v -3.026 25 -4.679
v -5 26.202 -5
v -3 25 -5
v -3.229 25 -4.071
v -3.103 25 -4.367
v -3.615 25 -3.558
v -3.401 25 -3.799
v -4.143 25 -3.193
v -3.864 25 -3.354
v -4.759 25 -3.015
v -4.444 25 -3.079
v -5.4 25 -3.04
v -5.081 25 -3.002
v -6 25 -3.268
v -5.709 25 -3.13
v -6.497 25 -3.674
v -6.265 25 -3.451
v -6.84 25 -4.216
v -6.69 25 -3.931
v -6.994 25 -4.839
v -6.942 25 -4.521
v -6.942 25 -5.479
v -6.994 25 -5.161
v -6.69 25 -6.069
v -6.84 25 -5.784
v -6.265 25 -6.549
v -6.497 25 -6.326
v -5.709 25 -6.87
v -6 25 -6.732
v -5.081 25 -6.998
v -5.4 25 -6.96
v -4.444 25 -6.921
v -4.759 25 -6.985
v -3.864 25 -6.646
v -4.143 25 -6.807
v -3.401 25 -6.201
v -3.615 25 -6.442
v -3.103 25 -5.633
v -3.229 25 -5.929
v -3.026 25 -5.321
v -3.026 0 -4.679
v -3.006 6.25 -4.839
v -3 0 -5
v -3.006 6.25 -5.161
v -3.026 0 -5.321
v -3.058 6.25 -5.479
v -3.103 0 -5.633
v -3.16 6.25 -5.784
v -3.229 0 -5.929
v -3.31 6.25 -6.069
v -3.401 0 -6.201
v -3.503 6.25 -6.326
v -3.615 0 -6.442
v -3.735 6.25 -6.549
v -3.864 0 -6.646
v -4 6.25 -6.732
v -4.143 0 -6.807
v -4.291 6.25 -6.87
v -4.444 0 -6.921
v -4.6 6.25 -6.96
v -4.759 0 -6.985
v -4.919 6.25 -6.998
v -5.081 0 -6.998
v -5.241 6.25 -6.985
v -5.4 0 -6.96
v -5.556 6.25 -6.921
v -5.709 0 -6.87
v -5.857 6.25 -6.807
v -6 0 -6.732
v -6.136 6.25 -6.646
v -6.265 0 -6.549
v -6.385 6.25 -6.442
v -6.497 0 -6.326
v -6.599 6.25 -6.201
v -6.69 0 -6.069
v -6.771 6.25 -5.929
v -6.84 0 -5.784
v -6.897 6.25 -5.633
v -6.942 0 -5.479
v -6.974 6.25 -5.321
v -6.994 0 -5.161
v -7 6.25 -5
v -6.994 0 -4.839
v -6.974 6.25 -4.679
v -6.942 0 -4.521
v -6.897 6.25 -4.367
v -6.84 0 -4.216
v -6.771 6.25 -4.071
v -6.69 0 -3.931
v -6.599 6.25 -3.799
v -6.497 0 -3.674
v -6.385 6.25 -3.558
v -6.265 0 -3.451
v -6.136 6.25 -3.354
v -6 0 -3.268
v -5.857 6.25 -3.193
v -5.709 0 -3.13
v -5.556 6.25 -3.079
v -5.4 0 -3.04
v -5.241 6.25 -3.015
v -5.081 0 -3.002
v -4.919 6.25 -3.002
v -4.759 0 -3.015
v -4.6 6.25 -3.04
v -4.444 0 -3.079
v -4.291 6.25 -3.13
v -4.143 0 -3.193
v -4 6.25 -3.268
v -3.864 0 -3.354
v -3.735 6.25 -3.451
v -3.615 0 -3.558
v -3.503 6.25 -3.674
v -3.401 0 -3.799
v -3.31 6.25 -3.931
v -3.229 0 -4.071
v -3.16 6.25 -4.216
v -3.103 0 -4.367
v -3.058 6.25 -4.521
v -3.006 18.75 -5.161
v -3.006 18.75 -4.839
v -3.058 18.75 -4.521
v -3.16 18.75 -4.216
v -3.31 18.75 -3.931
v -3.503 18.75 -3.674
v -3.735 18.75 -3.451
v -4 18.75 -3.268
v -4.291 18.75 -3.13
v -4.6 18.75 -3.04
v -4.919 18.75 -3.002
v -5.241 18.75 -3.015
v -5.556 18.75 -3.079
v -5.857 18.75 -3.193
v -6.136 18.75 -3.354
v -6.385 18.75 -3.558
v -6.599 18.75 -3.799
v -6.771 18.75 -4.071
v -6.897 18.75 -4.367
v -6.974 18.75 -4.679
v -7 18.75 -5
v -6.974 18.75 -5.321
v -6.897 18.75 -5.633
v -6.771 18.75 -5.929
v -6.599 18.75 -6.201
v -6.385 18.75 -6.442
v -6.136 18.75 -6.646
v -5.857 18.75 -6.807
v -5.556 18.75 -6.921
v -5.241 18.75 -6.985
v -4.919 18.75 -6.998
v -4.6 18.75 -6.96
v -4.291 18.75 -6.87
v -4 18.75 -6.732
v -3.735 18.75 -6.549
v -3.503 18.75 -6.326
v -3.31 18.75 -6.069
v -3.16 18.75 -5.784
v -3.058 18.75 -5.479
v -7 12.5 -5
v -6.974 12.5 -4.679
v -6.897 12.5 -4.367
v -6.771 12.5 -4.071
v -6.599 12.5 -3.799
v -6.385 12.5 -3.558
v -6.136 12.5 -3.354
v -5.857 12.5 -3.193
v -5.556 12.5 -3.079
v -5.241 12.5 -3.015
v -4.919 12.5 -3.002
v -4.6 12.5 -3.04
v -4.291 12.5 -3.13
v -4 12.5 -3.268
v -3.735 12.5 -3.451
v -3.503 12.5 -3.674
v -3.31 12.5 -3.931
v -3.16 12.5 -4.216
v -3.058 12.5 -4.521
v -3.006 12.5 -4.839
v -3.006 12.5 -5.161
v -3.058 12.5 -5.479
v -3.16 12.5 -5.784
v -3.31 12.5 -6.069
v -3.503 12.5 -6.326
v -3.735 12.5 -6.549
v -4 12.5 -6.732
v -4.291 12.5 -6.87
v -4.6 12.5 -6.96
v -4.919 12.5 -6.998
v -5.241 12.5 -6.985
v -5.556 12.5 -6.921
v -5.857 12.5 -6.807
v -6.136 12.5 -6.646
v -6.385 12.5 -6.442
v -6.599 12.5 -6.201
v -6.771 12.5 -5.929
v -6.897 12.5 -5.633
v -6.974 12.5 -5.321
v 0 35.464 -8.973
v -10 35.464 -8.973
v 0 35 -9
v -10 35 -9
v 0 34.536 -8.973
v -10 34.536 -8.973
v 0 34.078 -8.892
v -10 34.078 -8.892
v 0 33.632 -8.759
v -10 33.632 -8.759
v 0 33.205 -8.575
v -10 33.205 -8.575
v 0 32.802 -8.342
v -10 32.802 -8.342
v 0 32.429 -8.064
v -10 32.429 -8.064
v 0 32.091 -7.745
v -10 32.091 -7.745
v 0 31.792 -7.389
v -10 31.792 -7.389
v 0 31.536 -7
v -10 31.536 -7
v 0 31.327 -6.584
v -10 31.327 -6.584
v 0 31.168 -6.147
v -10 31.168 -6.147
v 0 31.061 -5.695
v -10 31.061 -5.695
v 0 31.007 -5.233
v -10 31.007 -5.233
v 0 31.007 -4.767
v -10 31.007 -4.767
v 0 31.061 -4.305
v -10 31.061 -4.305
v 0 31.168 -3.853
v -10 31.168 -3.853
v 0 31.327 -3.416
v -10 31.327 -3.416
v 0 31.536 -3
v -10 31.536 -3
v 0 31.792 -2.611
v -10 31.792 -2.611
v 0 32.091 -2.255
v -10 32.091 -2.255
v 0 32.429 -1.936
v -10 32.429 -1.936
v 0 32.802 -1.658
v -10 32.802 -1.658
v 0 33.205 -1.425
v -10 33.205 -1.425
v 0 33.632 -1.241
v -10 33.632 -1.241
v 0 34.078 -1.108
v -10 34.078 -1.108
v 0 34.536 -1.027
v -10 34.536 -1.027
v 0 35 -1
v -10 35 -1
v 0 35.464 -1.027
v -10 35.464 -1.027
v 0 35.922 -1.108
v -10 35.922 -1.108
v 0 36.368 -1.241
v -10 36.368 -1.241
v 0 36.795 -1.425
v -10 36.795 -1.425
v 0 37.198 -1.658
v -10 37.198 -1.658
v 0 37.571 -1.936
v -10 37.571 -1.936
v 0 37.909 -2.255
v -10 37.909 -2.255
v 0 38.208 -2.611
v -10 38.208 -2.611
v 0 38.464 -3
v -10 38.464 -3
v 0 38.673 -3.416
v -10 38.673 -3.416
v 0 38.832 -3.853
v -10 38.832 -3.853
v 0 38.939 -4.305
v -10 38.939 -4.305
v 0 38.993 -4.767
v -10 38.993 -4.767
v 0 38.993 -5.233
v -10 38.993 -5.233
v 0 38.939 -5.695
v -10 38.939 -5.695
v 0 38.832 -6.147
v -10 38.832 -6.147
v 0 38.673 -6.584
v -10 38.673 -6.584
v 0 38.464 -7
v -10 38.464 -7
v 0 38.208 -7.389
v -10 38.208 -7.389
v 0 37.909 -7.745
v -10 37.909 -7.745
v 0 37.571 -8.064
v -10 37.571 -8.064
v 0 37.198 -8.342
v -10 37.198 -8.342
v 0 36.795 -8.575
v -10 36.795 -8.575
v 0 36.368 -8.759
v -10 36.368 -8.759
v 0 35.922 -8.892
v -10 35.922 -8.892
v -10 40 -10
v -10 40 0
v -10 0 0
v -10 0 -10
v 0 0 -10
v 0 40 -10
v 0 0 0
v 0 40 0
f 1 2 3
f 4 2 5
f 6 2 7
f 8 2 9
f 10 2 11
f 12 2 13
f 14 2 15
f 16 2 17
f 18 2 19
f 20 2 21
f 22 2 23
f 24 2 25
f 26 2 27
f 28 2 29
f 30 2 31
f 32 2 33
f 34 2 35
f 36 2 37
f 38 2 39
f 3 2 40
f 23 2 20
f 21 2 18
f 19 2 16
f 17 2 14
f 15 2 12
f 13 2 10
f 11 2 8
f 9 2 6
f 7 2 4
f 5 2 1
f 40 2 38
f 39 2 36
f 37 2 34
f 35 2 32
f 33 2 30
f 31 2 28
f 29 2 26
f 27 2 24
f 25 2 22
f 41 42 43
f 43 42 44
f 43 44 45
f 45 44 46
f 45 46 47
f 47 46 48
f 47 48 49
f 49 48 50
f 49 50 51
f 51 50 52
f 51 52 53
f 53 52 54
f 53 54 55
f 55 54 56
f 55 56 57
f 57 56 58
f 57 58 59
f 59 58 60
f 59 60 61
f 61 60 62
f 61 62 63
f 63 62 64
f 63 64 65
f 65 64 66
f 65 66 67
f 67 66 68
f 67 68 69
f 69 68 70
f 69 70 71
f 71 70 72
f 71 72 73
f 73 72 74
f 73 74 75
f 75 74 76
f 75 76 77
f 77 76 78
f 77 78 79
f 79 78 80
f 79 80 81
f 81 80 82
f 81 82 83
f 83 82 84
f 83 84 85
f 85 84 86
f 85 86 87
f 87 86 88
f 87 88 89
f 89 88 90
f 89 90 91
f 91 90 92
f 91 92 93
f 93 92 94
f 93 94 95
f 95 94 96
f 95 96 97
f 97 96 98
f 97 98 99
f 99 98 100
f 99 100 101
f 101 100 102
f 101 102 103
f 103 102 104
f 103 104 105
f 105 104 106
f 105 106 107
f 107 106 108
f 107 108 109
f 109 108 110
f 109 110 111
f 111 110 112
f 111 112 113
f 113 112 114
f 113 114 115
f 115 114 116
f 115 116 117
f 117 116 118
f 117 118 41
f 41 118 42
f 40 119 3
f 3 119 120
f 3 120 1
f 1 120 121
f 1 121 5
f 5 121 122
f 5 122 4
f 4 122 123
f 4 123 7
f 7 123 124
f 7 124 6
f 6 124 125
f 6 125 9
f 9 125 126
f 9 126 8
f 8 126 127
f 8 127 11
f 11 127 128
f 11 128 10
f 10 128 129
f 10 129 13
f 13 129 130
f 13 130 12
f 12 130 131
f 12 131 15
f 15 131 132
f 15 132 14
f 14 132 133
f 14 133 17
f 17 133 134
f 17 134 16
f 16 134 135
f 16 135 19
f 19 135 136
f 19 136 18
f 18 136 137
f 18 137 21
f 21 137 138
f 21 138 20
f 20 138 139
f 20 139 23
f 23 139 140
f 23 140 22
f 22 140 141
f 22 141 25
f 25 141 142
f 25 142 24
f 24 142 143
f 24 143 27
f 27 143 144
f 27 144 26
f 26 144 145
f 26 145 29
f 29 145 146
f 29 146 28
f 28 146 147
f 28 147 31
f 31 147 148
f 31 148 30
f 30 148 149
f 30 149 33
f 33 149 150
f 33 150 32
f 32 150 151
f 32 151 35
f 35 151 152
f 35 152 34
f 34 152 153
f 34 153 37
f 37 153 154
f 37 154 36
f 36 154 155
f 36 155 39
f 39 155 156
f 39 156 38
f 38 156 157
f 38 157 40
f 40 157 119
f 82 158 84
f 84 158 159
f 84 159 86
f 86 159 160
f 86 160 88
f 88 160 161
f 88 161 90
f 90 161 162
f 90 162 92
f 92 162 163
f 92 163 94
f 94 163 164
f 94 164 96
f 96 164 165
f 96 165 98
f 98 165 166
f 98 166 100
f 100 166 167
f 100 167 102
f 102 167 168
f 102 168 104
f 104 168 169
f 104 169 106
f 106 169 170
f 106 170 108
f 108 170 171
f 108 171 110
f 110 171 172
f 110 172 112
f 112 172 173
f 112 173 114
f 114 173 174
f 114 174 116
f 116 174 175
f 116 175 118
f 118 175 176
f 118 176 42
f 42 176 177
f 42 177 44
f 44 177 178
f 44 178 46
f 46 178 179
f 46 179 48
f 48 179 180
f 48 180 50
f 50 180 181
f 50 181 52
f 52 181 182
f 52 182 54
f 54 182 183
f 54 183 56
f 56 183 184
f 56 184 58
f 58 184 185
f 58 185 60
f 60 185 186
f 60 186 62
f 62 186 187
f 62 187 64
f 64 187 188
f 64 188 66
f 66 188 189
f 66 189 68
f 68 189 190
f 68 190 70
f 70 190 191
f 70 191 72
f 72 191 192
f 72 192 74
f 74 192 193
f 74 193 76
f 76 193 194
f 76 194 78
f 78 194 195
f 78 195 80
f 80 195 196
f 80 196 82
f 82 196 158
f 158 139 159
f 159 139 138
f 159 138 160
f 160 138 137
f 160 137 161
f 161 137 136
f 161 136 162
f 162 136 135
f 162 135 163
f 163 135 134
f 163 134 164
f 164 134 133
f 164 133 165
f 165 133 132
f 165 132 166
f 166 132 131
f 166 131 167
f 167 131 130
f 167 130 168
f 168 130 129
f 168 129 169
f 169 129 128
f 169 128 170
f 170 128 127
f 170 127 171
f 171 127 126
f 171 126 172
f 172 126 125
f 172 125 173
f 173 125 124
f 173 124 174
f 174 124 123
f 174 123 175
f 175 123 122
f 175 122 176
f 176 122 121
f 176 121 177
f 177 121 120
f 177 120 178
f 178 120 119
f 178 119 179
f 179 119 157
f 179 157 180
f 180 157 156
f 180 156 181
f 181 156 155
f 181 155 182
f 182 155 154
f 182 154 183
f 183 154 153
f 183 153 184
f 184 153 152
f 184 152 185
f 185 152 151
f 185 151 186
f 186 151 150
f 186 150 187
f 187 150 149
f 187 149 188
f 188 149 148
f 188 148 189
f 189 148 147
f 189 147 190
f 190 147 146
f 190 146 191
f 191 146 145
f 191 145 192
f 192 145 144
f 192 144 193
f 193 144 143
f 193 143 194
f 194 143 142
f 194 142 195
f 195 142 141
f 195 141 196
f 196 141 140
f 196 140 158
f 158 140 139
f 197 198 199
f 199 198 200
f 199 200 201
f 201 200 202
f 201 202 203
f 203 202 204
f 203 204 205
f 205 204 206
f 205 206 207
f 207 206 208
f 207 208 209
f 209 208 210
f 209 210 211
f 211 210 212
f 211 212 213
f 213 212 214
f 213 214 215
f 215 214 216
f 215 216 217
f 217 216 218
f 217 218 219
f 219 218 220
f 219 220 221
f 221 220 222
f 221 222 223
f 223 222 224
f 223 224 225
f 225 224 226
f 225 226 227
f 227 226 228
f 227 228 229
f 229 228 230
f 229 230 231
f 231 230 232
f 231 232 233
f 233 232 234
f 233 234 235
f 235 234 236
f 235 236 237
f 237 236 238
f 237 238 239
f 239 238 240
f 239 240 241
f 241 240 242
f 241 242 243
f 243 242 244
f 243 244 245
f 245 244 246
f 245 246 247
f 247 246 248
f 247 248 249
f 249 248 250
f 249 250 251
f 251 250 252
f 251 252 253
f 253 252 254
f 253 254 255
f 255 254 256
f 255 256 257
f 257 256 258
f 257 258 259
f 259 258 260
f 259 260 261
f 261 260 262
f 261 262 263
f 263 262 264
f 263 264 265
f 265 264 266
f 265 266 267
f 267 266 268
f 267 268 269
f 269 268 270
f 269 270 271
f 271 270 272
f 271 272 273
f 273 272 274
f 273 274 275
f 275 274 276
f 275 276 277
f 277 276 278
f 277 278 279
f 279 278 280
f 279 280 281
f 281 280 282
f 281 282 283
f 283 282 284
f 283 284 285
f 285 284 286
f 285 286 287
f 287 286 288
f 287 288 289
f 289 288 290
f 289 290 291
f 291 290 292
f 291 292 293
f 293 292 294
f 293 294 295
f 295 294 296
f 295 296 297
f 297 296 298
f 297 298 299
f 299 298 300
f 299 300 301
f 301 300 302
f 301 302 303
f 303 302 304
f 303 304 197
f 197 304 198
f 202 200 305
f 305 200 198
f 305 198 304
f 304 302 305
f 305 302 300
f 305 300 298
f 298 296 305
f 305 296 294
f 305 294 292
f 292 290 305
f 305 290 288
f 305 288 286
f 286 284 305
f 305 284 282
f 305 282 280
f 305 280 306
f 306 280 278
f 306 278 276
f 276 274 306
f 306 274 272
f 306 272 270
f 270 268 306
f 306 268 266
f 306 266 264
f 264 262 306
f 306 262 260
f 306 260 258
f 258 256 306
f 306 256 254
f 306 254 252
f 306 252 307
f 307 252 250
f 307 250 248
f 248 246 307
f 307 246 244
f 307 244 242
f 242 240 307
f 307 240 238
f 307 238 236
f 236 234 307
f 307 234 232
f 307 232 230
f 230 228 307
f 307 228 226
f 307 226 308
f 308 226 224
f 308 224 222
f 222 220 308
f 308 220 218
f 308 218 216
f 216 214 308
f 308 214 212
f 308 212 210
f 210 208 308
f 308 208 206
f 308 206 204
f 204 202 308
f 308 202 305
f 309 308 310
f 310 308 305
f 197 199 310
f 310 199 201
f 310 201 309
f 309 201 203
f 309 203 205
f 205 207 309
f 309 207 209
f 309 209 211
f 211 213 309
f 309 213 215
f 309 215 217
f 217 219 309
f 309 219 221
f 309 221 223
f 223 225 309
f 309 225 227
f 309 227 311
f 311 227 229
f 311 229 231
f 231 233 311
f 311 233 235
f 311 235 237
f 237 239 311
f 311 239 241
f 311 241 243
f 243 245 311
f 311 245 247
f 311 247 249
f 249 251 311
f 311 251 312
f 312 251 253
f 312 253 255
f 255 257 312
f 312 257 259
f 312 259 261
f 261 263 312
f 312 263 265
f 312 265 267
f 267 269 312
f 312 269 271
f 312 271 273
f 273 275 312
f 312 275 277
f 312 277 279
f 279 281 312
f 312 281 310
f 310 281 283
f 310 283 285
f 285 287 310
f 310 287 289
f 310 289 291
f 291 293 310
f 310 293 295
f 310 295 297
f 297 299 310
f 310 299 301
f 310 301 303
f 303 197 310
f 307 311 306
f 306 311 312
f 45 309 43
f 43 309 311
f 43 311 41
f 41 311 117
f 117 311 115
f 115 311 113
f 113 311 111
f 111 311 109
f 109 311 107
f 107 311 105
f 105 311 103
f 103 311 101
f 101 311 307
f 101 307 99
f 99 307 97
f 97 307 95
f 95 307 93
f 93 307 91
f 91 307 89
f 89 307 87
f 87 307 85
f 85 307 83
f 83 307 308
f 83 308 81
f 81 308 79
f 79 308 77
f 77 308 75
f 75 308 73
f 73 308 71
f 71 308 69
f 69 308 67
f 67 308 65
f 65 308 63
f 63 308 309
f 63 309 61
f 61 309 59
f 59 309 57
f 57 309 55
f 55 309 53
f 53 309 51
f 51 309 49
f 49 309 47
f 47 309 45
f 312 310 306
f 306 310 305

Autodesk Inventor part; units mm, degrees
ref_plane "YZ Plane" through (0, 0, 0) normal (1, 0, 0) x (0, 1, 0)
ref_plane "XZ Plane" through (0, 0, 0) normal (0, 1, 0) x (-1, 0, 0)
ref_plane "XY Plane" through (0, 0, 0) normal (0, 0, 1) x (1, 0, 0)
sketch "Esquisse1" plane through (0, 0, 0) normal (0, 1, 0) x (-1, 0, 0)
  line L0 (0, 0) -> (10, 0)
  line L1 (10, 0) -> (10, -10)
  line L2 (10, -10) -> (0, -10)
  line L3 (0, -10) -> (0, 0)
  dimension "d0" = 10
  dimension "d1" = 10
extrude "Extrusion1" add sketch "Esquisse1" along normal blind 40
sketch "Esquisse2" plane through (0, 0, 0) normal (1, 0, 0) x (0, 0, -1)
  line L0 (10, 0) -> (0, 0) projected
  line L1 (0, 0) -> (0, 40) projected
  point P0 (5, 35)
  dimension "d4" = 35
  dimension "d5" = 5
hole "Perçage1" at (0, 35, -5) direction (-1, 0, 0) diameter 8 depth 10 tip angle 118
sketch "Esquisse3" plane through (0, 0, 0) normal (0, -1, 0) x (1, 0, 0)
  line L0 (-10, 0) -> (0, 0) projected
  line L1 (-10, 0) -> (-10, -10) projected
  point P0 (-5, -5)
  dimension "d13" = 5
  dimension "d14" = 5
hole "Perçage2" at (-5, 0, -5) direction (0, 1, 0) diameter 4 depth 25 tip angle 118
properties part number "SupportBarreCodeuse"
